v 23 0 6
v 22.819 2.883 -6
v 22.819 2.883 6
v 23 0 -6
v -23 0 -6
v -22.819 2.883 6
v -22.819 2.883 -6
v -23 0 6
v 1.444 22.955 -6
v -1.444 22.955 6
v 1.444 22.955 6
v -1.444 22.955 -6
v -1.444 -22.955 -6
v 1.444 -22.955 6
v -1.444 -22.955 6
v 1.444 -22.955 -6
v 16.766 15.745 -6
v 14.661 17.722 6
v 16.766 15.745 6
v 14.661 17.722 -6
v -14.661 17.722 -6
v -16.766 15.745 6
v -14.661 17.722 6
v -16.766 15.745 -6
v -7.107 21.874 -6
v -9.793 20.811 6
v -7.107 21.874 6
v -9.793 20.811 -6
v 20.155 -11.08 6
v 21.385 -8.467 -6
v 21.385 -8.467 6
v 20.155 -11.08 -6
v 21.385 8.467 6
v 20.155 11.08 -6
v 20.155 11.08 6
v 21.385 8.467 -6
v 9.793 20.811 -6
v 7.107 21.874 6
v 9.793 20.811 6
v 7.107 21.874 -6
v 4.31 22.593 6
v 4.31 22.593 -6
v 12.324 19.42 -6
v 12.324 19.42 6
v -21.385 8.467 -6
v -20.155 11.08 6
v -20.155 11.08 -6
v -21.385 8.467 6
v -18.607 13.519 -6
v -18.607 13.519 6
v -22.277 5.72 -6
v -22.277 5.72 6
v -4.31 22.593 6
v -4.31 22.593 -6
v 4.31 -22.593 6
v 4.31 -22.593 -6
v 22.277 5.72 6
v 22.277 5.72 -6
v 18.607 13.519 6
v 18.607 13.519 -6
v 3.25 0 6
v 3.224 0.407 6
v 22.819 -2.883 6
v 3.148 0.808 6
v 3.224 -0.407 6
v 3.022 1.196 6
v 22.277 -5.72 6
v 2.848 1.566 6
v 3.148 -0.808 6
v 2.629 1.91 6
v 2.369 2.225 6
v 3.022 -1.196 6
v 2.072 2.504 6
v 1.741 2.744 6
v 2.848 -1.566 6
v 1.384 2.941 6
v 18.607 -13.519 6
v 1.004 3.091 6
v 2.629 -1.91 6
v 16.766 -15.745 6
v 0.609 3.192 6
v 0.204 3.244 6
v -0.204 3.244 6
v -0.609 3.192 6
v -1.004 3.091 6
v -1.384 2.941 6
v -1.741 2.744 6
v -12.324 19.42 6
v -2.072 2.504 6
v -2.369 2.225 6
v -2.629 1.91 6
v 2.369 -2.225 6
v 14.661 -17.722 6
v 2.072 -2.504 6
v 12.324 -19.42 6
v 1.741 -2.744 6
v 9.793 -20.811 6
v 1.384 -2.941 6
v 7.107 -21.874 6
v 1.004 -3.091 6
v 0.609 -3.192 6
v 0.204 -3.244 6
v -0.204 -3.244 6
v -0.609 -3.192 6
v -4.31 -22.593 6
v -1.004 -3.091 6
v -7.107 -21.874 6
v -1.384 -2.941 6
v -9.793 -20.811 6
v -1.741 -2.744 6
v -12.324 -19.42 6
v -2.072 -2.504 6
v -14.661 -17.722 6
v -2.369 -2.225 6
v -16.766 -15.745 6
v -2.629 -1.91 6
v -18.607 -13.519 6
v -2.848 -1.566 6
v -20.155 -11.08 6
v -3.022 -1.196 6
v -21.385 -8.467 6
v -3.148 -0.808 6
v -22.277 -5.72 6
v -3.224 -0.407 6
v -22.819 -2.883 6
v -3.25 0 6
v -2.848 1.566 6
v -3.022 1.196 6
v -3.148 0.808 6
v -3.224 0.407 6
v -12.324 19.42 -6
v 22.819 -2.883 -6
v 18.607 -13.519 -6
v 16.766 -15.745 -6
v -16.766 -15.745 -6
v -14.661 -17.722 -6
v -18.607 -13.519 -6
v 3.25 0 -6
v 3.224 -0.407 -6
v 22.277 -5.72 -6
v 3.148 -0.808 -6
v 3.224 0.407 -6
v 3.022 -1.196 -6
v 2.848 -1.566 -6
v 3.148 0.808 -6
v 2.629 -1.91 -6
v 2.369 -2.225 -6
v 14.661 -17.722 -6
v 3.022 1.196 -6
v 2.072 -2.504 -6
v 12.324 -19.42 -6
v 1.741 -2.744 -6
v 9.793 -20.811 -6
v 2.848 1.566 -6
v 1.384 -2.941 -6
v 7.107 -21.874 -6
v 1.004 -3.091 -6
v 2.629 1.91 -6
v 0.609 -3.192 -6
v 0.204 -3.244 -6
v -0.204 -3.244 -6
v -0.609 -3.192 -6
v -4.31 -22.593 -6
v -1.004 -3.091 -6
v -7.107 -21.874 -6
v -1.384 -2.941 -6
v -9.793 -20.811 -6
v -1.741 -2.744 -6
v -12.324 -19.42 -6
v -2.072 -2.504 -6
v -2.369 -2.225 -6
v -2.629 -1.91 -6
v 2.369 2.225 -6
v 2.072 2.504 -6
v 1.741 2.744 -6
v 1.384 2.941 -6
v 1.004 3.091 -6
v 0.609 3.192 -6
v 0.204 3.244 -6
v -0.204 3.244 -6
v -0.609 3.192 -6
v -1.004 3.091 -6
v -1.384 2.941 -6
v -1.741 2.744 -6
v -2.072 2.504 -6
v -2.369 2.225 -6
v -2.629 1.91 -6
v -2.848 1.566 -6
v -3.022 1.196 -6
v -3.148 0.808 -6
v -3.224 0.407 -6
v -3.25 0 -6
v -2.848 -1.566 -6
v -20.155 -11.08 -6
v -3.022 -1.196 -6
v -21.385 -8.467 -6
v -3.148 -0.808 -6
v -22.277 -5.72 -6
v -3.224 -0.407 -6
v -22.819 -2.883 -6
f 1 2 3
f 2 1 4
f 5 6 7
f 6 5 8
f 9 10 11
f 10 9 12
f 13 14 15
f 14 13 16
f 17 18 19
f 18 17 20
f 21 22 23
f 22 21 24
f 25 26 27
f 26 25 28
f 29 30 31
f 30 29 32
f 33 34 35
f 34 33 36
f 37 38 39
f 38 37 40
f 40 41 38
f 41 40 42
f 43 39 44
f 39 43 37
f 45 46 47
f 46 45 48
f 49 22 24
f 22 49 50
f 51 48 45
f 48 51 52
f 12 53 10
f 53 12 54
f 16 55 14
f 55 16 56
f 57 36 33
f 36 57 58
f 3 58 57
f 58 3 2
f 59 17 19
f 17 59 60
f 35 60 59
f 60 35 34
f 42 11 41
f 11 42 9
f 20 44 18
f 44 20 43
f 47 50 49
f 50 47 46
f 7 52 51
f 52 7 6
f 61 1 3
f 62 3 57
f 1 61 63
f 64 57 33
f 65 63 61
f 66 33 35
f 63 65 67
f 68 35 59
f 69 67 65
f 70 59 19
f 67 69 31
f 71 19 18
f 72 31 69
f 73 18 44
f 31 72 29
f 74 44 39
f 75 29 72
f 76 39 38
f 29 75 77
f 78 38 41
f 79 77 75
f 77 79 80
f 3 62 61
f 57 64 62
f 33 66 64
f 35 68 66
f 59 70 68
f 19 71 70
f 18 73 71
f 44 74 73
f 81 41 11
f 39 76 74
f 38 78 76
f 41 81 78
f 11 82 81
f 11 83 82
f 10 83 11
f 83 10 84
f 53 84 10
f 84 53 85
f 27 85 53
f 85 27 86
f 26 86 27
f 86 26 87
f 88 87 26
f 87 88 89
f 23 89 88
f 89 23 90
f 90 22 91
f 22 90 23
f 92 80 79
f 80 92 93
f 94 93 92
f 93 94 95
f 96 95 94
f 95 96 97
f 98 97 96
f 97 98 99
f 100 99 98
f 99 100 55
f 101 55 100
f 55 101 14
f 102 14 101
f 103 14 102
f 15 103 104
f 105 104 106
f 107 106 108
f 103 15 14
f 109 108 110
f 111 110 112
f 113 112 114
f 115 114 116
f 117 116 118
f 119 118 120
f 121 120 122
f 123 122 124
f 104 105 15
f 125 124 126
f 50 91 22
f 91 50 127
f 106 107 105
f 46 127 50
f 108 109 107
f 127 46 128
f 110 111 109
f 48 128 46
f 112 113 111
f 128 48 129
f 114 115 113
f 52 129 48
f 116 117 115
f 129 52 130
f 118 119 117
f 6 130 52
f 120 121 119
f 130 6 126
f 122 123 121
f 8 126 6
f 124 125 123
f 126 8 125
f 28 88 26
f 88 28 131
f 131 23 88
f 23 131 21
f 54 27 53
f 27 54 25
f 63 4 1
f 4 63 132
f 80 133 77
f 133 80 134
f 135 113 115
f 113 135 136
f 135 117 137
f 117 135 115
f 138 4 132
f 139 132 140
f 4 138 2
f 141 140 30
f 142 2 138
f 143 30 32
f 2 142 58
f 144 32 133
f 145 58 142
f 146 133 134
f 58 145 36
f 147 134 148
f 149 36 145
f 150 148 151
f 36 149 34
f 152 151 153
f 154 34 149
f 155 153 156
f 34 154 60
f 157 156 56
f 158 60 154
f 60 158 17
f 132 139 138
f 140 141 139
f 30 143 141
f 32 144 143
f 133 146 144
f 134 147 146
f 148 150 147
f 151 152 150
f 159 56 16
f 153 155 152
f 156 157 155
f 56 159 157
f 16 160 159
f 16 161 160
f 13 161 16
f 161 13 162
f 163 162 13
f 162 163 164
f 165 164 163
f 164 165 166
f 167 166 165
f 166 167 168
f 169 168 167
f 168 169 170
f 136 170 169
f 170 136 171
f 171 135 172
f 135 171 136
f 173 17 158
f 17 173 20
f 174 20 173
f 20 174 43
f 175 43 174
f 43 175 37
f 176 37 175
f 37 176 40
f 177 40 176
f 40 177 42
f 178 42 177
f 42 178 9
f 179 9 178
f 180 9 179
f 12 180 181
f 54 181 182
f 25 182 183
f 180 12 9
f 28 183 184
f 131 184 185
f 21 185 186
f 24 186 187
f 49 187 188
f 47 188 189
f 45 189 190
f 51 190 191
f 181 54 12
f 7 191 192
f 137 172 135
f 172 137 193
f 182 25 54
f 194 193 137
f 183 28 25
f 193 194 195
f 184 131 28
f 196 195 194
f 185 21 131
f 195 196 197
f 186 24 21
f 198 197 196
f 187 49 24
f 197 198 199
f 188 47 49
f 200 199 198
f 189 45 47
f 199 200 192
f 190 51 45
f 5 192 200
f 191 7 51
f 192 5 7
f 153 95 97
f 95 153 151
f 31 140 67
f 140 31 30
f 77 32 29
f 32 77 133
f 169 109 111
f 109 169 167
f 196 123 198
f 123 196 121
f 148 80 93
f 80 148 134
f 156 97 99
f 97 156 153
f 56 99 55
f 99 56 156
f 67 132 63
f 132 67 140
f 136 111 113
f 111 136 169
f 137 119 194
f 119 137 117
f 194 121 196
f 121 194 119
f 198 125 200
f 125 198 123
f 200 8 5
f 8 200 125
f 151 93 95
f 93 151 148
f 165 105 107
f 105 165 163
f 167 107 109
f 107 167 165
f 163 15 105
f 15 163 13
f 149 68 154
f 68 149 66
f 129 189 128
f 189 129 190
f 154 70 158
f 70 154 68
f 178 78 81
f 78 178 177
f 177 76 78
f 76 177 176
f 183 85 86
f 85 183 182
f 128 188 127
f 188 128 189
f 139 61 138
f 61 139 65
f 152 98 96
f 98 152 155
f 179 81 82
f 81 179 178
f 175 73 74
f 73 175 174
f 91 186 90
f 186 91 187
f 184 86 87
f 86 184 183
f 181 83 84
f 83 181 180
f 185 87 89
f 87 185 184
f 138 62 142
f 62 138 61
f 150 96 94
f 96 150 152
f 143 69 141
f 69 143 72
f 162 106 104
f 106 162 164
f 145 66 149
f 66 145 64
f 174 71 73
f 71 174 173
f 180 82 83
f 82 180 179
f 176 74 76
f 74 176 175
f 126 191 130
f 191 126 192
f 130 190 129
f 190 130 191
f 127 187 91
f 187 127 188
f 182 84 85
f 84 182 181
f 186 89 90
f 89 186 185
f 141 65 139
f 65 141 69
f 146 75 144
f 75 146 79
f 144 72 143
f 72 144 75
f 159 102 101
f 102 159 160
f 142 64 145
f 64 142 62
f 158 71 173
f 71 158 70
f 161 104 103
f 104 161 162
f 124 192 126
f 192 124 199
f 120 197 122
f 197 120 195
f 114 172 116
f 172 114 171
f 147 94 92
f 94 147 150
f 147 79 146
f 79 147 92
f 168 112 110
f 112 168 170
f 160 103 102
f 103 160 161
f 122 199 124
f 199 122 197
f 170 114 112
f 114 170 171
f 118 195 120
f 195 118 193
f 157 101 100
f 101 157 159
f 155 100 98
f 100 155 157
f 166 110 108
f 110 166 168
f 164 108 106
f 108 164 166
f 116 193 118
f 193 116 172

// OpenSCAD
$fn = 50;


difference() {
	union() {
		translate(v = [0, 0, -6.0000000000]) {
			cylinder(h = 12, r = 23.0000000000);
		}
	}
	union() {
		translate(v = [0, 0, -100.0000000000]) {
			cylinder(h = 200, r = 3.2500000000);
		}
	}
}
